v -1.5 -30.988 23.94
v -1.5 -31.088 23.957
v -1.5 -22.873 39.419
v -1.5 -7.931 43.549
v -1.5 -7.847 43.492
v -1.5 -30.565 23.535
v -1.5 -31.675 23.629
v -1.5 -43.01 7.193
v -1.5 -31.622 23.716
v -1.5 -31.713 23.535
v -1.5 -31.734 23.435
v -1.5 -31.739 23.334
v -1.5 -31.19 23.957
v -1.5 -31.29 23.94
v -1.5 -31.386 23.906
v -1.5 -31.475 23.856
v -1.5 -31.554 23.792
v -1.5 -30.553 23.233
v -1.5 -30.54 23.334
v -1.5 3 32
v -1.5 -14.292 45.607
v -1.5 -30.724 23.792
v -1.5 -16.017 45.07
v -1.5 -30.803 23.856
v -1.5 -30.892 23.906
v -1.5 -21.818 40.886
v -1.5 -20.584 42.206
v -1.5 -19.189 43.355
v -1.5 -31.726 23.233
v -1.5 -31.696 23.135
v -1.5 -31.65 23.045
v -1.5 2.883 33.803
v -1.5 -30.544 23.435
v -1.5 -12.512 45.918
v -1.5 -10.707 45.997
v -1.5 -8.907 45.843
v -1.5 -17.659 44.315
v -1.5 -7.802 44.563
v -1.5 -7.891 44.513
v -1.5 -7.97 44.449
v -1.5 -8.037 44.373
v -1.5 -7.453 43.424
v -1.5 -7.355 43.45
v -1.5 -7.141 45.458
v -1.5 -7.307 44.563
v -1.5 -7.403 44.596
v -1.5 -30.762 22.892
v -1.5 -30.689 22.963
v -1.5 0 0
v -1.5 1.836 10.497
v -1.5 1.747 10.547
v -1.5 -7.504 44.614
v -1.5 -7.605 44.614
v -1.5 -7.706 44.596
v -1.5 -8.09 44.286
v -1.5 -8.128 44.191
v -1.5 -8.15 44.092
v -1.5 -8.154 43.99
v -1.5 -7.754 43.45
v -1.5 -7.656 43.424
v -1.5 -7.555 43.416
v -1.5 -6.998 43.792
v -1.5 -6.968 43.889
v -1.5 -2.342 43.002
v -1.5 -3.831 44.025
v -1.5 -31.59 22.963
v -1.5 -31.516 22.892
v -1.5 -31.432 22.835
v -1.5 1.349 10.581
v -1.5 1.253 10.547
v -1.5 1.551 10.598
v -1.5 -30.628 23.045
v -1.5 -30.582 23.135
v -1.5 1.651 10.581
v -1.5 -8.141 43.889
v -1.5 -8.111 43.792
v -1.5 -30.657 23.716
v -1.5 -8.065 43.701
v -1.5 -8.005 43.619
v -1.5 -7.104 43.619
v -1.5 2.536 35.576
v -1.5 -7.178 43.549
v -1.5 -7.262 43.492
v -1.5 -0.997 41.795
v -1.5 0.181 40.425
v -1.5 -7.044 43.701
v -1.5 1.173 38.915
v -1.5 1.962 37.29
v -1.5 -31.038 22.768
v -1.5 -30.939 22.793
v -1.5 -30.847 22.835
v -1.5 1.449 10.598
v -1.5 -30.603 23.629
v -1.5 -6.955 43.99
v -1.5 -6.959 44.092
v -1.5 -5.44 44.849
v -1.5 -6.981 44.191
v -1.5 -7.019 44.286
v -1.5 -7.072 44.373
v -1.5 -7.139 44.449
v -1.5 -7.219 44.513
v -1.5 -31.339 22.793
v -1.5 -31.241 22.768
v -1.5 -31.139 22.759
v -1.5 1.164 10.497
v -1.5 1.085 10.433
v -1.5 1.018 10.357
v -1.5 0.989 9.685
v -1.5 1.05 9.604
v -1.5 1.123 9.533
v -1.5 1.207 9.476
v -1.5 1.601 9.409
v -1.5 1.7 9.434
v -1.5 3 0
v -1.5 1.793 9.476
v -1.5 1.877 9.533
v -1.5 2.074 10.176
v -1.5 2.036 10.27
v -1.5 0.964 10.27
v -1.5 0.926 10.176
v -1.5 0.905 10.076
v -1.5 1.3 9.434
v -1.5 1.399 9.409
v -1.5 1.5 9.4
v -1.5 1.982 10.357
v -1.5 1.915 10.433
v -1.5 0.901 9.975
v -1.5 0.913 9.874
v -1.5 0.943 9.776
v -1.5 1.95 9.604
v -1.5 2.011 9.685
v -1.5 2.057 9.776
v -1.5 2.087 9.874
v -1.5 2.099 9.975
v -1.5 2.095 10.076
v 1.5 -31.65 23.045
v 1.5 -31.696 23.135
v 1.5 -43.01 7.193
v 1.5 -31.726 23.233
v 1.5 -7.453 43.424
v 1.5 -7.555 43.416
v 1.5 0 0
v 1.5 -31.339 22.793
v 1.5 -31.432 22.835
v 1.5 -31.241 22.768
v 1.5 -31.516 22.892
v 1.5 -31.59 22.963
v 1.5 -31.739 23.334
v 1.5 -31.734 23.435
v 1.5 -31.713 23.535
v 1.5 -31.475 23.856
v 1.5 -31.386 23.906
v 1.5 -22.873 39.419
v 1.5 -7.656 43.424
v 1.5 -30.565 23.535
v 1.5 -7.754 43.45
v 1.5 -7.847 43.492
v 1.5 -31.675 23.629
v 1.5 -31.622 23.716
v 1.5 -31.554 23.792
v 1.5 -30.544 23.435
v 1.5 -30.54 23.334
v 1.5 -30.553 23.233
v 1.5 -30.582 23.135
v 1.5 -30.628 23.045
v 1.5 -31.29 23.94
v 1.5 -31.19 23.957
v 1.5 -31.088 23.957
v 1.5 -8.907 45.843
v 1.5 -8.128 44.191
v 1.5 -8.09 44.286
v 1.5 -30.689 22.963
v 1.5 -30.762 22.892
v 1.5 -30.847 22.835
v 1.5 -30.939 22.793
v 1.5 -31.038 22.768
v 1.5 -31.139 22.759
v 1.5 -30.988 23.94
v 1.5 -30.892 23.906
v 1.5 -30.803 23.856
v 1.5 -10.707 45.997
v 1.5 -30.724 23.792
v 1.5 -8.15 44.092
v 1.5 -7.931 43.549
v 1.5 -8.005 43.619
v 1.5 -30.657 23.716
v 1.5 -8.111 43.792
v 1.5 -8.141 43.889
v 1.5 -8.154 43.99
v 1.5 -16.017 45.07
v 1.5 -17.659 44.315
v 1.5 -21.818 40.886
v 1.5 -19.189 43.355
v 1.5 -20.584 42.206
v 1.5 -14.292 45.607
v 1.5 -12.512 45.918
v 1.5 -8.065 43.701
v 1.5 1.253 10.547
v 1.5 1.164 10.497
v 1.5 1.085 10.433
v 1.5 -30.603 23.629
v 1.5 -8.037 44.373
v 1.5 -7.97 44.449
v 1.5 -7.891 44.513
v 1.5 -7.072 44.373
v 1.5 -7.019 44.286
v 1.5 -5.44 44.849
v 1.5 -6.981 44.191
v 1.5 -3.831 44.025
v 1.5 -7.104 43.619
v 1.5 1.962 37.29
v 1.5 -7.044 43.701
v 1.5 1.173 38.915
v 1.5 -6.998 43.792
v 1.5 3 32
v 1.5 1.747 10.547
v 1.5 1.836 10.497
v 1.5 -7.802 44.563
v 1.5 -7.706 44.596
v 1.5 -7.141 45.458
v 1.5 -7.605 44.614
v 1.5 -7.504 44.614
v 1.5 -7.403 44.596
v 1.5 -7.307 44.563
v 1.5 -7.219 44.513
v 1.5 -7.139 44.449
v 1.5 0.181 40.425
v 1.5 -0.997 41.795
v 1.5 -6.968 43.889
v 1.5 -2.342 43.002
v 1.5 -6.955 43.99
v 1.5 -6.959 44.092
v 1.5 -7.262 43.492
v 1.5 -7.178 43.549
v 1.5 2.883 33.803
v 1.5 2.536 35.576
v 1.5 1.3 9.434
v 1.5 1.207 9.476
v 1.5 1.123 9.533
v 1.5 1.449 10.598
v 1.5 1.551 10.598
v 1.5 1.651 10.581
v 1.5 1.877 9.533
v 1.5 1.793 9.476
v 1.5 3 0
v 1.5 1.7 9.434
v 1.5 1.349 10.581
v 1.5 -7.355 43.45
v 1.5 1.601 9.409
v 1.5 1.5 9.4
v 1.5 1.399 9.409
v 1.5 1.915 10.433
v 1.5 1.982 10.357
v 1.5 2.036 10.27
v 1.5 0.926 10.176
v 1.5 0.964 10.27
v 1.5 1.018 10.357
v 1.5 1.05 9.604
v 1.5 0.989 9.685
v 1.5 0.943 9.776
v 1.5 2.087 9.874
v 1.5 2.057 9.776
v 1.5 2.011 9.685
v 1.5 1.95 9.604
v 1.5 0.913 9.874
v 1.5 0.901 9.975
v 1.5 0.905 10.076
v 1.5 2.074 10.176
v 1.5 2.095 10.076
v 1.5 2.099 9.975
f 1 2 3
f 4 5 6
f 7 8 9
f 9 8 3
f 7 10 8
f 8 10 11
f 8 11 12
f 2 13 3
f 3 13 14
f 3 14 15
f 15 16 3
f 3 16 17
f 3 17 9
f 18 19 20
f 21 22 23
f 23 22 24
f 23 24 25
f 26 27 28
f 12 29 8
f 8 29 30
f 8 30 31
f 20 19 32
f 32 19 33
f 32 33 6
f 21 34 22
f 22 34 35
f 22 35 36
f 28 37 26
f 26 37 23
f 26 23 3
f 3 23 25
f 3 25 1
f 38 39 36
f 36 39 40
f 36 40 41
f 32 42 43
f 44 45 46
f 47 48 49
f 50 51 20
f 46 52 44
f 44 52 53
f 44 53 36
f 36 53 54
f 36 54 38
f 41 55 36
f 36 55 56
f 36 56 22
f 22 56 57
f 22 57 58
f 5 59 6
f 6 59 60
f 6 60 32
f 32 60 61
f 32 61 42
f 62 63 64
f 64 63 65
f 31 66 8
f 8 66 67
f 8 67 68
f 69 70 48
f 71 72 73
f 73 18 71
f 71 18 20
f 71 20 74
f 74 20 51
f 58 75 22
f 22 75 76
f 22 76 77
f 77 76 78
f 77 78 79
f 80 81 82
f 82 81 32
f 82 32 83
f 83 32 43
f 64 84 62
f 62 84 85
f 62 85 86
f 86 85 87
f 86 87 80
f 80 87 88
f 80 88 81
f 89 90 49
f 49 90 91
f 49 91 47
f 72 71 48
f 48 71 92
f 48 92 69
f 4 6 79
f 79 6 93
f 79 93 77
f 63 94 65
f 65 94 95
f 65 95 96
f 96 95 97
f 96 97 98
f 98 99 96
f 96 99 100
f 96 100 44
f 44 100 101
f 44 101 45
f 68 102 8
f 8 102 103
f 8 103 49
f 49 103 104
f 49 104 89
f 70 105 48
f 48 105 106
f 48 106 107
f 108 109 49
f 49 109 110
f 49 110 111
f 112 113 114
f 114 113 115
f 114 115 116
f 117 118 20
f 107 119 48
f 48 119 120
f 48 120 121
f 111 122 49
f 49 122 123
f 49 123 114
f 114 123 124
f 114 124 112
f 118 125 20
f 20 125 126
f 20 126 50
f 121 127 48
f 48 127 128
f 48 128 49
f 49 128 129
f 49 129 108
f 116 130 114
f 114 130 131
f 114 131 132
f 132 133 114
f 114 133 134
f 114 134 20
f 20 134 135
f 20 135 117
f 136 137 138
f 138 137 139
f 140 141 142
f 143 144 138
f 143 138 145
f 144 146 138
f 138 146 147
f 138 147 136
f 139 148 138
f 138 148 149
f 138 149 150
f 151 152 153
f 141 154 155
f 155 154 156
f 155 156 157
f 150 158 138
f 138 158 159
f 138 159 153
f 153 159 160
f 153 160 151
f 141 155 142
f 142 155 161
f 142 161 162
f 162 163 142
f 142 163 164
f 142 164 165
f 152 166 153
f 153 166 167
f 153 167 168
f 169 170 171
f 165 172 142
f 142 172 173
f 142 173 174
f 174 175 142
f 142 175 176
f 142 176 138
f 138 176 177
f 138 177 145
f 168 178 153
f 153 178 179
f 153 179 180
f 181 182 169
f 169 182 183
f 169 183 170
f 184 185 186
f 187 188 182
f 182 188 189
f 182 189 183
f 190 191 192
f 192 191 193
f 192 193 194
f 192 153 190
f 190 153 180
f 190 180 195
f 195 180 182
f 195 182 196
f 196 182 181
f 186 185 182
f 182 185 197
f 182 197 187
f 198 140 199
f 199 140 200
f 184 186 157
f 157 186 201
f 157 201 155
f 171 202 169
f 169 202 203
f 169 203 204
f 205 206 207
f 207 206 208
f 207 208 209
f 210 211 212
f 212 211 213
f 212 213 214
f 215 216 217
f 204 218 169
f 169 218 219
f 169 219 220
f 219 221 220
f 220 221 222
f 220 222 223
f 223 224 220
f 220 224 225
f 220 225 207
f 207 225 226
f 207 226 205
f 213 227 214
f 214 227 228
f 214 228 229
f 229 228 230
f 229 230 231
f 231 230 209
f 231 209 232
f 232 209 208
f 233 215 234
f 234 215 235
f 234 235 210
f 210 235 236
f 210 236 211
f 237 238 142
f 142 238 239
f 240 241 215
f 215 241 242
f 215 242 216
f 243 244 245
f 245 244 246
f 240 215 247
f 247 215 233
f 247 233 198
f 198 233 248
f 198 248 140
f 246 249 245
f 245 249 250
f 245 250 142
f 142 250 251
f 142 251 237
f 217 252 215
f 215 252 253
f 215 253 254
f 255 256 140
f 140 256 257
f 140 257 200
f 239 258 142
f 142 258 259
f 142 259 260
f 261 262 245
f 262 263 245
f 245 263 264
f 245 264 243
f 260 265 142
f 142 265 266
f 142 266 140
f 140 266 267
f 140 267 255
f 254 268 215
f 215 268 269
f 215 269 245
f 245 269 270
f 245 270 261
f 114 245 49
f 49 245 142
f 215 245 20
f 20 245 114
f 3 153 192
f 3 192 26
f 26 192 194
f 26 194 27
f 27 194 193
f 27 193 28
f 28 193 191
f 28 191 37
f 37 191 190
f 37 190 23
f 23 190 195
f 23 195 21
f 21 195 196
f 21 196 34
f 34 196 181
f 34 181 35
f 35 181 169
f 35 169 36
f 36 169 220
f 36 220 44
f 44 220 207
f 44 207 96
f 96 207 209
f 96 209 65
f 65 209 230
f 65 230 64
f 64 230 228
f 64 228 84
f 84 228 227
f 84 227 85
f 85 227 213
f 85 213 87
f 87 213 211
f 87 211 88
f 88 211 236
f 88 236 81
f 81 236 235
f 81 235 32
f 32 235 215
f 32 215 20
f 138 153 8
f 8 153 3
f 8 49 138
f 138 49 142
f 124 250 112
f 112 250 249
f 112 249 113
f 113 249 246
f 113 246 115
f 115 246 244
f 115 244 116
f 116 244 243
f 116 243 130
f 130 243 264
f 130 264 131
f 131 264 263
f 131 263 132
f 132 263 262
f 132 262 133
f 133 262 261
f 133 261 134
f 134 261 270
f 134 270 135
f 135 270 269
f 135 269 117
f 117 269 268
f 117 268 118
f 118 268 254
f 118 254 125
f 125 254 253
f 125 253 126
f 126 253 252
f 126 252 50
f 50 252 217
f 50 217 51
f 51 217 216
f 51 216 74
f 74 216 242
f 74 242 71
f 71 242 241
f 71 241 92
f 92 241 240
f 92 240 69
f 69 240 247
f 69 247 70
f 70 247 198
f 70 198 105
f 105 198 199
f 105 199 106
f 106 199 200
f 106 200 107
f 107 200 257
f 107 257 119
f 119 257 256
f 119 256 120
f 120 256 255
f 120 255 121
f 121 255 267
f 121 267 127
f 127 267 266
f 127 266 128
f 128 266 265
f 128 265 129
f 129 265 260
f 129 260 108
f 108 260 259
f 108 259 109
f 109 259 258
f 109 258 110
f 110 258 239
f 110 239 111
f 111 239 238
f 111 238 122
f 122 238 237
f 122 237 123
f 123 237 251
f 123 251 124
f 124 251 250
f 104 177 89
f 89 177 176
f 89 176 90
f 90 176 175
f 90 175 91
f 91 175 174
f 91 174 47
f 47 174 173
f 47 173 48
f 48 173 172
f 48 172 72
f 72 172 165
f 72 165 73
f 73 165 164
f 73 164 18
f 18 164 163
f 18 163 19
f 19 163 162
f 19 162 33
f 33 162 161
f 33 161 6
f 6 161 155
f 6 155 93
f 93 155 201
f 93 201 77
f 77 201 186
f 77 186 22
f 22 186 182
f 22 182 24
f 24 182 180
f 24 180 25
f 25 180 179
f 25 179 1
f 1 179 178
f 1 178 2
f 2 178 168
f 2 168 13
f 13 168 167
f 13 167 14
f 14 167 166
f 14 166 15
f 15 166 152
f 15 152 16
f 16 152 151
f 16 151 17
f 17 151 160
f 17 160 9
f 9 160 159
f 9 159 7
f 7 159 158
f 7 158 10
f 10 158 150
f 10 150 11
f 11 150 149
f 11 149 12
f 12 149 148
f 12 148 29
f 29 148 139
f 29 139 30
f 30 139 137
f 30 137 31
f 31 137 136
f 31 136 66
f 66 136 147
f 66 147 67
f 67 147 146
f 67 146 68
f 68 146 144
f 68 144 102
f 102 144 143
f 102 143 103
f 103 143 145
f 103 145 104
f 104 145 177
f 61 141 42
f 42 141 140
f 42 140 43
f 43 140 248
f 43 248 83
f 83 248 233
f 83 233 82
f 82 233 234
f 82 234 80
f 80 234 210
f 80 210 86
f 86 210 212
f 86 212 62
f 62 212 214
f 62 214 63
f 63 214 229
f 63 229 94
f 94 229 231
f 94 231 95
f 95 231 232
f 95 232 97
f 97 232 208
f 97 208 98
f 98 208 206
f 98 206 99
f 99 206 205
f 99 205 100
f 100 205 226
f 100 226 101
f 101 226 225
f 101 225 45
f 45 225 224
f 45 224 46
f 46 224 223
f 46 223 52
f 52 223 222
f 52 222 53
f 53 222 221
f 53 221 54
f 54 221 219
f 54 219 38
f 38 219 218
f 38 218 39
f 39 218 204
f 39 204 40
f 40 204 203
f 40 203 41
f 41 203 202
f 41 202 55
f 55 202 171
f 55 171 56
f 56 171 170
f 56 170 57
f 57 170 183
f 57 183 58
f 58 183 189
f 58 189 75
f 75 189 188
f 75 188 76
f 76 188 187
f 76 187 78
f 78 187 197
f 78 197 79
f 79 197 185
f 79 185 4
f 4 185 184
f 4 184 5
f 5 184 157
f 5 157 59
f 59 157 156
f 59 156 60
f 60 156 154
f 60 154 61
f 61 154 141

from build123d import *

# Parameters (mm, degrees)
SKETCH_2_W               = 3
SKETCH_2_H               = 32
EXTRUDE_1_DEPTH          = 3
EXTRUDE_2_DEPTH          = 3
EXTRUDE_3_DEPTH          = 3
CUT_EXTRUDE_1_DEPTH      = 64.046222373
CUT_EXTRUDE_1_DEPTH_BACK = 3
SKETCH_6_R               = 0.6
CUT_EXTRUDE_2_DEPTH      = 64.046222373


with BuildPart() as part:
    # 草图2 → 凸台-拉伸1 (new body)
    with BuildSketch(Plane(origin=(0, 0, 0), x_dir=(1, 0, 0), z_dir=(0, 1, 0))):
        with Locations((0, -16)):
            Rectangle(SKETCH_2_W, SKETCH_2_H)
    extrude(amount=EXTRUDE_1_DEPTH)

    # 草图3 → 凸台-拉伸2 (add)
    with BuildSketch(Plane(origin=(1.5, 0, 0), x_dir=(0, 0, -1), z_dir=(1, 0, 0))):
        with BuildLine():
            ThreePointArc((-37.829111907, -20.328529058), (-42.573878655, -7.967989086), (-32, 0))
            Line((-32, 0), (-23.339745962, 0))
            ThreePointArc((-23.339745962, 0), (-43.453167914, -2.948606038), (-39.418869699, -22.872673346))
            Line((-39.418869699, -22.872673346), (-7.193042045, -43.009605387))
            Line((-7.193042045, -43.009605387), (-5.603284253, -40.465461099))
            Line((-5.603284253, -40.465461099), (-37.829111907, -20.328529058))
        make_face()
    extrude(amount=-EXTRUDE_2_DEPTH)

    # 草图4 → 凸台-拉伸3 (add)
    with BuildSketch(Plane(origin=(1.5, 0, 0), x_dir=(0, 0, -1), z_dir=(1, 0, 0))):
        with BuildLine():
            Line((-6.657393053, -39.806780816), (0, 0))
            Line((0, 0), (-32, 0))
            ThreePointArc((-32, 0), (-42.573878655, -7.967989086), (-37.829111907, -20.328529058))
            Line((-37.829111907, -20.328529058), (-6.657393053, -39.806780816))
        make_face()
    extrude(amount=-EXTRUDE_3_DEPTH)

    # 草图5 → 切除-拉伸1 (cut, two sides: drawn at the far end of the back side and taken through both)
    with BuildSketch(Plane(origin=(1.5, 0, 0), x_dir=(0, 0, -1), z_dir=(1, 0, 0)).offset(-CUT_EXTRUDE_1_DEPTH_BACK)):
        Polygon((-6.657393053, -39.806780816), (-7.193042045, -43.009605387), (-5.603284253, -40.465461099), align=None)
    extrude(amount=CUT_EXTRUDE_1_DEPTH + CUT_EXTRUDE_1_DEPTH_BACK, mode=Mode.SUBTRACT)

    # 草图6 → 切除-拉伸2 (cut, through all)
    with BuildSketch(Plane(origin=(1.5, 0, 0), x_dir=(0, 0, -1), z_dir=(1, 0, 0))):
        with Locations((-10, 1.5)):
            Circle(SKETCH_6_R)
        with Locations((-44.015771199, -7.554533052)):
            Circle(SKETCH_6_R)
        with Locations((-23.359125072, -31.139147958)):
            Circle(SKETCH_6_R)
    extrude(amount=-CUT_EXTRUDE_2_DEPTH, mode=Mode.SUBTRACT)


solid = part.part
